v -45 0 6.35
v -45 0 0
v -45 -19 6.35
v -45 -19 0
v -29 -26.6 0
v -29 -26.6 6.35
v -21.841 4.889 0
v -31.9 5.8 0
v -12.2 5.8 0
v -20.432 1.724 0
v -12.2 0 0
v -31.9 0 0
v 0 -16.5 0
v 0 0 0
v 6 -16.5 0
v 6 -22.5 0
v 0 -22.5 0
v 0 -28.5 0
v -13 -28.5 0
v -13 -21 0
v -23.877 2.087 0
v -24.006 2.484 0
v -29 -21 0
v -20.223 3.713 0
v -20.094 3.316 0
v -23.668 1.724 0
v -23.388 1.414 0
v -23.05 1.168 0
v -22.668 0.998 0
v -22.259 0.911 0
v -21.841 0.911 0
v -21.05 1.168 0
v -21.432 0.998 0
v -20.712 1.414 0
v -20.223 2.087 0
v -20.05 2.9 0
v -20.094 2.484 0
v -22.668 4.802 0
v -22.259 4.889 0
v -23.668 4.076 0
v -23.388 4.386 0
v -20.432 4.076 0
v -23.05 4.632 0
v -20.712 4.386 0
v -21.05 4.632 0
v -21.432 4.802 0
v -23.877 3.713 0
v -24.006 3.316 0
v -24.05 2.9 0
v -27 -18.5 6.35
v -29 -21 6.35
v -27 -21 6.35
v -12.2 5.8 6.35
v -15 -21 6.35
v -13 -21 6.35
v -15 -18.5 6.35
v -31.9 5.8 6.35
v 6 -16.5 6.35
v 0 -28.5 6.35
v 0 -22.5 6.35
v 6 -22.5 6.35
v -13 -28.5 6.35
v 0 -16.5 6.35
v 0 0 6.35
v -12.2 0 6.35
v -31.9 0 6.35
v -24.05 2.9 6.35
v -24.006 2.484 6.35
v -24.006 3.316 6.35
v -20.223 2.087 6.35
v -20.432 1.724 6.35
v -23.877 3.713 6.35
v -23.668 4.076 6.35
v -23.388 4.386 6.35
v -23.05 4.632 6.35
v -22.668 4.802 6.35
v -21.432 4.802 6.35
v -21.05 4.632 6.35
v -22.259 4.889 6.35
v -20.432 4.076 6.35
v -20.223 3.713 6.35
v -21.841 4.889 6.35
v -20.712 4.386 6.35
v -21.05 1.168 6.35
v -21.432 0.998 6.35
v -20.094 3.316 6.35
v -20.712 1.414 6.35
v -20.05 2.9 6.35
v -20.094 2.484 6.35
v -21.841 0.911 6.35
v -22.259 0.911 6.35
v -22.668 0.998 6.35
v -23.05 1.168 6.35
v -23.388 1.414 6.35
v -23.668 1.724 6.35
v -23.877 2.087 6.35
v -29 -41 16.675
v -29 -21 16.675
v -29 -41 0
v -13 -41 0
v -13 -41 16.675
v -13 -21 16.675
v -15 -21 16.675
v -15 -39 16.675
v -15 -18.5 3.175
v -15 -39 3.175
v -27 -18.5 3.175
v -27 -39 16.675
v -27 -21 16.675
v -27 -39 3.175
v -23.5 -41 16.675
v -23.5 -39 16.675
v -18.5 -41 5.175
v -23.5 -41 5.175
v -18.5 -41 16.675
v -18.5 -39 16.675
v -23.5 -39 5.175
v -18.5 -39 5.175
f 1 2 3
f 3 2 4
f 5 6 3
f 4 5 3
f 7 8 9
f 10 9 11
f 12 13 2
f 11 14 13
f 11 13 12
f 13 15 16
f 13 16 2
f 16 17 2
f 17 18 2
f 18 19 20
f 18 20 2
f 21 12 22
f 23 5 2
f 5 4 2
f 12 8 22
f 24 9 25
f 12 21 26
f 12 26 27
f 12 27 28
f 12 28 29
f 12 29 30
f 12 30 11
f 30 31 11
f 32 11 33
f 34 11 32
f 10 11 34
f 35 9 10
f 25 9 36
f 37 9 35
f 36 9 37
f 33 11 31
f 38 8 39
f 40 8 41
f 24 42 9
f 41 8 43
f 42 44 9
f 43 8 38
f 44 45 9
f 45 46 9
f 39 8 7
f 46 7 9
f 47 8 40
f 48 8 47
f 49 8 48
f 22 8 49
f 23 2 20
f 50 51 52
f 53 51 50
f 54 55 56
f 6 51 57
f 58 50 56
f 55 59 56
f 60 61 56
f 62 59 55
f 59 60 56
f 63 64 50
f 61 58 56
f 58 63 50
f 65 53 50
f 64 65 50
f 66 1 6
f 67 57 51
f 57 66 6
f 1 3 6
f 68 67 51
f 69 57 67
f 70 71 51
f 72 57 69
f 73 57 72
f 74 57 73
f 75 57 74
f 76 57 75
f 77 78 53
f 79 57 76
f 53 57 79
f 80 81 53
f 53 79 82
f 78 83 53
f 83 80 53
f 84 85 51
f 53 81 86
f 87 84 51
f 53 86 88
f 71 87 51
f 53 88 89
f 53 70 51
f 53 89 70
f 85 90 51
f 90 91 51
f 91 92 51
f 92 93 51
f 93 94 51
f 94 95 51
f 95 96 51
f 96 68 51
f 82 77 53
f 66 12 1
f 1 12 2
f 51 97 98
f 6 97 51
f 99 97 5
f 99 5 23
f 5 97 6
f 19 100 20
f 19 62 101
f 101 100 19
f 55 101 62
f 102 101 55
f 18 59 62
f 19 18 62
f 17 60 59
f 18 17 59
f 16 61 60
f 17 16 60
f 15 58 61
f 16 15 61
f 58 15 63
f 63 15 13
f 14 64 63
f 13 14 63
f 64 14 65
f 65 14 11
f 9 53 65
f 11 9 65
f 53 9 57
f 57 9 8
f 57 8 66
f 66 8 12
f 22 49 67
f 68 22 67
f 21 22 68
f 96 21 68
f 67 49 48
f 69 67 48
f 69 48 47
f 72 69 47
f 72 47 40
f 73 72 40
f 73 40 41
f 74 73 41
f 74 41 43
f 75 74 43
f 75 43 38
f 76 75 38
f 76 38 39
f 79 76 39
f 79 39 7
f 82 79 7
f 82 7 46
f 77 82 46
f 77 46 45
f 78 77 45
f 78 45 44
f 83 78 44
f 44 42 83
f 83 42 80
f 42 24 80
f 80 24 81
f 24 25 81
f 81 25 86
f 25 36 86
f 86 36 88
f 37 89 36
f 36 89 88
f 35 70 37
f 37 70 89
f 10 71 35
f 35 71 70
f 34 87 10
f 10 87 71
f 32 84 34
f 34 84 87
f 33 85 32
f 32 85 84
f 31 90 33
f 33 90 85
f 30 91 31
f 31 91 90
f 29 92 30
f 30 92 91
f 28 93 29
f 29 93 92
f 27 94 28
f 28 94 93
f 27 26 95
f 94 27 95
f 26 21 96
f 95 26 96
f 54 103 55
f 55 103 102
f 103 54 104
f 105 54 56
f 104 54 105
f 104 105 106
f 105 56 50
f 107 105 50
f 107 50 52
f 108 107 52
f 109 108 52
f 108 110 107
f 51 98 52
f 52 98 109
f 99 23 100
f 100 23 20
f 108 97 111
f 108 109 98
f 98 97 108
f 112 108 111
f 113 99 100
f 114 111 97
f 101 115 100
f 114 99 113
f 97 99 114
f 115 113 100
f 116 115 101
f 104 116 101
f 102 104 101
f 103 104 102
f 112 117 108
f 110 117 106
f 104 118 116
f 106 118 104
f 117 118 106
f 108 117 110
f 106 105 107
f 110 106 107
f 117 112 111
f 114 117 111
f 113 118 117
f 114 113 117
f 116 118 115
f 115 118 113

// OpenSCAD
// file: lib/solenoid.scad
X=0;Y=1;Z=2;

// Draw a solenoid of {size}
// {off} is the extension when not energised
// {on} is the extension when engergised
// {power} is the current power, between 0 and 1.
module Solenoid(size, off, on, power)
{
	thick = 1;
	rad = 0.5;
	gap = 0.2;

	position = -off+power*(off-on);

	translate(-[size[X]/2, size[Y]/2, 0])
	union()
	{
		color("lightgrey")
		union()
		{
			// Top left roundness
			translate([rad, 0, size[Z]-rad])
			rotate([-90, 0, 0])
			cylinder(h=size[Y], r=rad, $fn=20);

			// Top right roundness
			translate([size[X]-rad, 0, size[Z]-rad])
			rotate([-90, 0, 0])
			cylinder(h=size[Y], r=rad, $fn=20);

			// Top
			translate([rad, 0, size[Z]-thick])
			cube([size[X]-thick, size[Y], thick]);
	
			// Left
			cube([thick, size[Y], size[Z]-rad]);

			// Right
			translate([size[X]-thick, 0, 0])
			cube([thick, size[Y], size[Z]-rad]);

			// Bottom
			translate([thick+gap, 0, rad])
			cube([size[X]-thick*2-gap*2, size[Y], thick]);

			// Actuator (top)
			translate([size[X]/2, size[Y]/2, 0])
			cylinder(r=1.5, h=size[Z]+1, $fn=40);

			// Actuator (bottom)
			translate([size[X]/2, size[Y]/2, position])
			cylinder(r=2, h=size[Z], $fn=40);
		}

		// Spring clip
		color("black")
		translate([size[X]/2, size[Y]/2, position+1])
		cylinder(r=3.5, h=0.6, $fn=40);

		// Coil
		color("blue")
		translate([size[X]/2, size[Y]/2, rad+thick+gap])
		cylinder(h=size[Z]-rad-thick*2-gap*2, r=(size[X]-thick*2-gap*2)/2-gap, $fn=40);
	}
}

Solenoid([12, 11.5, 20.5], 8.1, 4.2, 0);
// file: x_side.scad
	// Jitter. This should be much less than one layer height.
j=0.03;

function PanelThickness()=6.35;

// Side panel with the various holes cut out
module XSidePlate(endstop_hole=false)
{
	translate([0, 0, PanelThickness()])
	rotate([180, 0, 0])
	difference()
	{
		linear_extrude(height=PanelThickness()) 
		polygon(points=[
			[0, 0],       // 0
			[12.2, 0],    // 1
			[12.2, -5.8], // 2
			[31.9, -5.8], // 3
			[31.9, 0],    // 4
			[45, 0],      // 5
			[45, 19],     // 6
			[25, 28.5],   // 7
			[0, 28.5],    // 8
			[0, 22.5],    // 9
			[-6, 22.5],   //10
			[-6, 16.5],   //11
			[0, 16.5]     //12
		]);

		// X Endstop bolt hole
		if(endstop_hole) {
			translate([17.9, 13.3, -j])
			cylinder(h=PanelThickness()+j+j, r=1.5,$fn=30);
		}

		// Main mounting bolt hole
		translate([22.05, -2.9, -j]) 
		cylinder(h=PanelThickness()+j+j, r=2, $fn=30);
	}
}


XSidePlate();
// main file
use <x_side.scad>
use <lib/solenoid.scad>


show_solenoid=1;

t=2;

solenoid_size=[12, 11.5, 20.5];

// Jitter. This should be much less than one layer height.
j=0.05;
X=0;Y=1;Z=2;


// Side panel with the various holes cut out
module XSideSolenoidMount()
{
	difference()
	{
		union()
		{
			// Main body
			scale([-1, 1, 1])
			XSidePlate();

			// Support for the Solenoid
			translate([-29, -41, 0])
			cube([16, 20, solenoid_size[Y]+PanelThickness()/2+t]);
		}
	
		// Support for the Solenoid
		translate([-29+t, -41+t, PanelThickness()/2])
		cube([solenoid_size[X], solenoid_size[Z], solenoid_size[Y]+t+j]);

		// Hole for the actuator
		translate([-29+t+solenoid_size[X]/2-2.5, -41-j, PanelThickness()/2+t])
		cube([5, t+j*2, 15]);
		
	}
	if(show_solenoid)
	{
		translate([-21, -39, solenoid_size[Y]/2+PanelThickness()-PanelThickness()/2])
		rotate([-90, 0, 0]) 
		%Solenoid(solenoid_size, 8.1, 4.2, 0);
	}
}


XSideSolenoidMount();
